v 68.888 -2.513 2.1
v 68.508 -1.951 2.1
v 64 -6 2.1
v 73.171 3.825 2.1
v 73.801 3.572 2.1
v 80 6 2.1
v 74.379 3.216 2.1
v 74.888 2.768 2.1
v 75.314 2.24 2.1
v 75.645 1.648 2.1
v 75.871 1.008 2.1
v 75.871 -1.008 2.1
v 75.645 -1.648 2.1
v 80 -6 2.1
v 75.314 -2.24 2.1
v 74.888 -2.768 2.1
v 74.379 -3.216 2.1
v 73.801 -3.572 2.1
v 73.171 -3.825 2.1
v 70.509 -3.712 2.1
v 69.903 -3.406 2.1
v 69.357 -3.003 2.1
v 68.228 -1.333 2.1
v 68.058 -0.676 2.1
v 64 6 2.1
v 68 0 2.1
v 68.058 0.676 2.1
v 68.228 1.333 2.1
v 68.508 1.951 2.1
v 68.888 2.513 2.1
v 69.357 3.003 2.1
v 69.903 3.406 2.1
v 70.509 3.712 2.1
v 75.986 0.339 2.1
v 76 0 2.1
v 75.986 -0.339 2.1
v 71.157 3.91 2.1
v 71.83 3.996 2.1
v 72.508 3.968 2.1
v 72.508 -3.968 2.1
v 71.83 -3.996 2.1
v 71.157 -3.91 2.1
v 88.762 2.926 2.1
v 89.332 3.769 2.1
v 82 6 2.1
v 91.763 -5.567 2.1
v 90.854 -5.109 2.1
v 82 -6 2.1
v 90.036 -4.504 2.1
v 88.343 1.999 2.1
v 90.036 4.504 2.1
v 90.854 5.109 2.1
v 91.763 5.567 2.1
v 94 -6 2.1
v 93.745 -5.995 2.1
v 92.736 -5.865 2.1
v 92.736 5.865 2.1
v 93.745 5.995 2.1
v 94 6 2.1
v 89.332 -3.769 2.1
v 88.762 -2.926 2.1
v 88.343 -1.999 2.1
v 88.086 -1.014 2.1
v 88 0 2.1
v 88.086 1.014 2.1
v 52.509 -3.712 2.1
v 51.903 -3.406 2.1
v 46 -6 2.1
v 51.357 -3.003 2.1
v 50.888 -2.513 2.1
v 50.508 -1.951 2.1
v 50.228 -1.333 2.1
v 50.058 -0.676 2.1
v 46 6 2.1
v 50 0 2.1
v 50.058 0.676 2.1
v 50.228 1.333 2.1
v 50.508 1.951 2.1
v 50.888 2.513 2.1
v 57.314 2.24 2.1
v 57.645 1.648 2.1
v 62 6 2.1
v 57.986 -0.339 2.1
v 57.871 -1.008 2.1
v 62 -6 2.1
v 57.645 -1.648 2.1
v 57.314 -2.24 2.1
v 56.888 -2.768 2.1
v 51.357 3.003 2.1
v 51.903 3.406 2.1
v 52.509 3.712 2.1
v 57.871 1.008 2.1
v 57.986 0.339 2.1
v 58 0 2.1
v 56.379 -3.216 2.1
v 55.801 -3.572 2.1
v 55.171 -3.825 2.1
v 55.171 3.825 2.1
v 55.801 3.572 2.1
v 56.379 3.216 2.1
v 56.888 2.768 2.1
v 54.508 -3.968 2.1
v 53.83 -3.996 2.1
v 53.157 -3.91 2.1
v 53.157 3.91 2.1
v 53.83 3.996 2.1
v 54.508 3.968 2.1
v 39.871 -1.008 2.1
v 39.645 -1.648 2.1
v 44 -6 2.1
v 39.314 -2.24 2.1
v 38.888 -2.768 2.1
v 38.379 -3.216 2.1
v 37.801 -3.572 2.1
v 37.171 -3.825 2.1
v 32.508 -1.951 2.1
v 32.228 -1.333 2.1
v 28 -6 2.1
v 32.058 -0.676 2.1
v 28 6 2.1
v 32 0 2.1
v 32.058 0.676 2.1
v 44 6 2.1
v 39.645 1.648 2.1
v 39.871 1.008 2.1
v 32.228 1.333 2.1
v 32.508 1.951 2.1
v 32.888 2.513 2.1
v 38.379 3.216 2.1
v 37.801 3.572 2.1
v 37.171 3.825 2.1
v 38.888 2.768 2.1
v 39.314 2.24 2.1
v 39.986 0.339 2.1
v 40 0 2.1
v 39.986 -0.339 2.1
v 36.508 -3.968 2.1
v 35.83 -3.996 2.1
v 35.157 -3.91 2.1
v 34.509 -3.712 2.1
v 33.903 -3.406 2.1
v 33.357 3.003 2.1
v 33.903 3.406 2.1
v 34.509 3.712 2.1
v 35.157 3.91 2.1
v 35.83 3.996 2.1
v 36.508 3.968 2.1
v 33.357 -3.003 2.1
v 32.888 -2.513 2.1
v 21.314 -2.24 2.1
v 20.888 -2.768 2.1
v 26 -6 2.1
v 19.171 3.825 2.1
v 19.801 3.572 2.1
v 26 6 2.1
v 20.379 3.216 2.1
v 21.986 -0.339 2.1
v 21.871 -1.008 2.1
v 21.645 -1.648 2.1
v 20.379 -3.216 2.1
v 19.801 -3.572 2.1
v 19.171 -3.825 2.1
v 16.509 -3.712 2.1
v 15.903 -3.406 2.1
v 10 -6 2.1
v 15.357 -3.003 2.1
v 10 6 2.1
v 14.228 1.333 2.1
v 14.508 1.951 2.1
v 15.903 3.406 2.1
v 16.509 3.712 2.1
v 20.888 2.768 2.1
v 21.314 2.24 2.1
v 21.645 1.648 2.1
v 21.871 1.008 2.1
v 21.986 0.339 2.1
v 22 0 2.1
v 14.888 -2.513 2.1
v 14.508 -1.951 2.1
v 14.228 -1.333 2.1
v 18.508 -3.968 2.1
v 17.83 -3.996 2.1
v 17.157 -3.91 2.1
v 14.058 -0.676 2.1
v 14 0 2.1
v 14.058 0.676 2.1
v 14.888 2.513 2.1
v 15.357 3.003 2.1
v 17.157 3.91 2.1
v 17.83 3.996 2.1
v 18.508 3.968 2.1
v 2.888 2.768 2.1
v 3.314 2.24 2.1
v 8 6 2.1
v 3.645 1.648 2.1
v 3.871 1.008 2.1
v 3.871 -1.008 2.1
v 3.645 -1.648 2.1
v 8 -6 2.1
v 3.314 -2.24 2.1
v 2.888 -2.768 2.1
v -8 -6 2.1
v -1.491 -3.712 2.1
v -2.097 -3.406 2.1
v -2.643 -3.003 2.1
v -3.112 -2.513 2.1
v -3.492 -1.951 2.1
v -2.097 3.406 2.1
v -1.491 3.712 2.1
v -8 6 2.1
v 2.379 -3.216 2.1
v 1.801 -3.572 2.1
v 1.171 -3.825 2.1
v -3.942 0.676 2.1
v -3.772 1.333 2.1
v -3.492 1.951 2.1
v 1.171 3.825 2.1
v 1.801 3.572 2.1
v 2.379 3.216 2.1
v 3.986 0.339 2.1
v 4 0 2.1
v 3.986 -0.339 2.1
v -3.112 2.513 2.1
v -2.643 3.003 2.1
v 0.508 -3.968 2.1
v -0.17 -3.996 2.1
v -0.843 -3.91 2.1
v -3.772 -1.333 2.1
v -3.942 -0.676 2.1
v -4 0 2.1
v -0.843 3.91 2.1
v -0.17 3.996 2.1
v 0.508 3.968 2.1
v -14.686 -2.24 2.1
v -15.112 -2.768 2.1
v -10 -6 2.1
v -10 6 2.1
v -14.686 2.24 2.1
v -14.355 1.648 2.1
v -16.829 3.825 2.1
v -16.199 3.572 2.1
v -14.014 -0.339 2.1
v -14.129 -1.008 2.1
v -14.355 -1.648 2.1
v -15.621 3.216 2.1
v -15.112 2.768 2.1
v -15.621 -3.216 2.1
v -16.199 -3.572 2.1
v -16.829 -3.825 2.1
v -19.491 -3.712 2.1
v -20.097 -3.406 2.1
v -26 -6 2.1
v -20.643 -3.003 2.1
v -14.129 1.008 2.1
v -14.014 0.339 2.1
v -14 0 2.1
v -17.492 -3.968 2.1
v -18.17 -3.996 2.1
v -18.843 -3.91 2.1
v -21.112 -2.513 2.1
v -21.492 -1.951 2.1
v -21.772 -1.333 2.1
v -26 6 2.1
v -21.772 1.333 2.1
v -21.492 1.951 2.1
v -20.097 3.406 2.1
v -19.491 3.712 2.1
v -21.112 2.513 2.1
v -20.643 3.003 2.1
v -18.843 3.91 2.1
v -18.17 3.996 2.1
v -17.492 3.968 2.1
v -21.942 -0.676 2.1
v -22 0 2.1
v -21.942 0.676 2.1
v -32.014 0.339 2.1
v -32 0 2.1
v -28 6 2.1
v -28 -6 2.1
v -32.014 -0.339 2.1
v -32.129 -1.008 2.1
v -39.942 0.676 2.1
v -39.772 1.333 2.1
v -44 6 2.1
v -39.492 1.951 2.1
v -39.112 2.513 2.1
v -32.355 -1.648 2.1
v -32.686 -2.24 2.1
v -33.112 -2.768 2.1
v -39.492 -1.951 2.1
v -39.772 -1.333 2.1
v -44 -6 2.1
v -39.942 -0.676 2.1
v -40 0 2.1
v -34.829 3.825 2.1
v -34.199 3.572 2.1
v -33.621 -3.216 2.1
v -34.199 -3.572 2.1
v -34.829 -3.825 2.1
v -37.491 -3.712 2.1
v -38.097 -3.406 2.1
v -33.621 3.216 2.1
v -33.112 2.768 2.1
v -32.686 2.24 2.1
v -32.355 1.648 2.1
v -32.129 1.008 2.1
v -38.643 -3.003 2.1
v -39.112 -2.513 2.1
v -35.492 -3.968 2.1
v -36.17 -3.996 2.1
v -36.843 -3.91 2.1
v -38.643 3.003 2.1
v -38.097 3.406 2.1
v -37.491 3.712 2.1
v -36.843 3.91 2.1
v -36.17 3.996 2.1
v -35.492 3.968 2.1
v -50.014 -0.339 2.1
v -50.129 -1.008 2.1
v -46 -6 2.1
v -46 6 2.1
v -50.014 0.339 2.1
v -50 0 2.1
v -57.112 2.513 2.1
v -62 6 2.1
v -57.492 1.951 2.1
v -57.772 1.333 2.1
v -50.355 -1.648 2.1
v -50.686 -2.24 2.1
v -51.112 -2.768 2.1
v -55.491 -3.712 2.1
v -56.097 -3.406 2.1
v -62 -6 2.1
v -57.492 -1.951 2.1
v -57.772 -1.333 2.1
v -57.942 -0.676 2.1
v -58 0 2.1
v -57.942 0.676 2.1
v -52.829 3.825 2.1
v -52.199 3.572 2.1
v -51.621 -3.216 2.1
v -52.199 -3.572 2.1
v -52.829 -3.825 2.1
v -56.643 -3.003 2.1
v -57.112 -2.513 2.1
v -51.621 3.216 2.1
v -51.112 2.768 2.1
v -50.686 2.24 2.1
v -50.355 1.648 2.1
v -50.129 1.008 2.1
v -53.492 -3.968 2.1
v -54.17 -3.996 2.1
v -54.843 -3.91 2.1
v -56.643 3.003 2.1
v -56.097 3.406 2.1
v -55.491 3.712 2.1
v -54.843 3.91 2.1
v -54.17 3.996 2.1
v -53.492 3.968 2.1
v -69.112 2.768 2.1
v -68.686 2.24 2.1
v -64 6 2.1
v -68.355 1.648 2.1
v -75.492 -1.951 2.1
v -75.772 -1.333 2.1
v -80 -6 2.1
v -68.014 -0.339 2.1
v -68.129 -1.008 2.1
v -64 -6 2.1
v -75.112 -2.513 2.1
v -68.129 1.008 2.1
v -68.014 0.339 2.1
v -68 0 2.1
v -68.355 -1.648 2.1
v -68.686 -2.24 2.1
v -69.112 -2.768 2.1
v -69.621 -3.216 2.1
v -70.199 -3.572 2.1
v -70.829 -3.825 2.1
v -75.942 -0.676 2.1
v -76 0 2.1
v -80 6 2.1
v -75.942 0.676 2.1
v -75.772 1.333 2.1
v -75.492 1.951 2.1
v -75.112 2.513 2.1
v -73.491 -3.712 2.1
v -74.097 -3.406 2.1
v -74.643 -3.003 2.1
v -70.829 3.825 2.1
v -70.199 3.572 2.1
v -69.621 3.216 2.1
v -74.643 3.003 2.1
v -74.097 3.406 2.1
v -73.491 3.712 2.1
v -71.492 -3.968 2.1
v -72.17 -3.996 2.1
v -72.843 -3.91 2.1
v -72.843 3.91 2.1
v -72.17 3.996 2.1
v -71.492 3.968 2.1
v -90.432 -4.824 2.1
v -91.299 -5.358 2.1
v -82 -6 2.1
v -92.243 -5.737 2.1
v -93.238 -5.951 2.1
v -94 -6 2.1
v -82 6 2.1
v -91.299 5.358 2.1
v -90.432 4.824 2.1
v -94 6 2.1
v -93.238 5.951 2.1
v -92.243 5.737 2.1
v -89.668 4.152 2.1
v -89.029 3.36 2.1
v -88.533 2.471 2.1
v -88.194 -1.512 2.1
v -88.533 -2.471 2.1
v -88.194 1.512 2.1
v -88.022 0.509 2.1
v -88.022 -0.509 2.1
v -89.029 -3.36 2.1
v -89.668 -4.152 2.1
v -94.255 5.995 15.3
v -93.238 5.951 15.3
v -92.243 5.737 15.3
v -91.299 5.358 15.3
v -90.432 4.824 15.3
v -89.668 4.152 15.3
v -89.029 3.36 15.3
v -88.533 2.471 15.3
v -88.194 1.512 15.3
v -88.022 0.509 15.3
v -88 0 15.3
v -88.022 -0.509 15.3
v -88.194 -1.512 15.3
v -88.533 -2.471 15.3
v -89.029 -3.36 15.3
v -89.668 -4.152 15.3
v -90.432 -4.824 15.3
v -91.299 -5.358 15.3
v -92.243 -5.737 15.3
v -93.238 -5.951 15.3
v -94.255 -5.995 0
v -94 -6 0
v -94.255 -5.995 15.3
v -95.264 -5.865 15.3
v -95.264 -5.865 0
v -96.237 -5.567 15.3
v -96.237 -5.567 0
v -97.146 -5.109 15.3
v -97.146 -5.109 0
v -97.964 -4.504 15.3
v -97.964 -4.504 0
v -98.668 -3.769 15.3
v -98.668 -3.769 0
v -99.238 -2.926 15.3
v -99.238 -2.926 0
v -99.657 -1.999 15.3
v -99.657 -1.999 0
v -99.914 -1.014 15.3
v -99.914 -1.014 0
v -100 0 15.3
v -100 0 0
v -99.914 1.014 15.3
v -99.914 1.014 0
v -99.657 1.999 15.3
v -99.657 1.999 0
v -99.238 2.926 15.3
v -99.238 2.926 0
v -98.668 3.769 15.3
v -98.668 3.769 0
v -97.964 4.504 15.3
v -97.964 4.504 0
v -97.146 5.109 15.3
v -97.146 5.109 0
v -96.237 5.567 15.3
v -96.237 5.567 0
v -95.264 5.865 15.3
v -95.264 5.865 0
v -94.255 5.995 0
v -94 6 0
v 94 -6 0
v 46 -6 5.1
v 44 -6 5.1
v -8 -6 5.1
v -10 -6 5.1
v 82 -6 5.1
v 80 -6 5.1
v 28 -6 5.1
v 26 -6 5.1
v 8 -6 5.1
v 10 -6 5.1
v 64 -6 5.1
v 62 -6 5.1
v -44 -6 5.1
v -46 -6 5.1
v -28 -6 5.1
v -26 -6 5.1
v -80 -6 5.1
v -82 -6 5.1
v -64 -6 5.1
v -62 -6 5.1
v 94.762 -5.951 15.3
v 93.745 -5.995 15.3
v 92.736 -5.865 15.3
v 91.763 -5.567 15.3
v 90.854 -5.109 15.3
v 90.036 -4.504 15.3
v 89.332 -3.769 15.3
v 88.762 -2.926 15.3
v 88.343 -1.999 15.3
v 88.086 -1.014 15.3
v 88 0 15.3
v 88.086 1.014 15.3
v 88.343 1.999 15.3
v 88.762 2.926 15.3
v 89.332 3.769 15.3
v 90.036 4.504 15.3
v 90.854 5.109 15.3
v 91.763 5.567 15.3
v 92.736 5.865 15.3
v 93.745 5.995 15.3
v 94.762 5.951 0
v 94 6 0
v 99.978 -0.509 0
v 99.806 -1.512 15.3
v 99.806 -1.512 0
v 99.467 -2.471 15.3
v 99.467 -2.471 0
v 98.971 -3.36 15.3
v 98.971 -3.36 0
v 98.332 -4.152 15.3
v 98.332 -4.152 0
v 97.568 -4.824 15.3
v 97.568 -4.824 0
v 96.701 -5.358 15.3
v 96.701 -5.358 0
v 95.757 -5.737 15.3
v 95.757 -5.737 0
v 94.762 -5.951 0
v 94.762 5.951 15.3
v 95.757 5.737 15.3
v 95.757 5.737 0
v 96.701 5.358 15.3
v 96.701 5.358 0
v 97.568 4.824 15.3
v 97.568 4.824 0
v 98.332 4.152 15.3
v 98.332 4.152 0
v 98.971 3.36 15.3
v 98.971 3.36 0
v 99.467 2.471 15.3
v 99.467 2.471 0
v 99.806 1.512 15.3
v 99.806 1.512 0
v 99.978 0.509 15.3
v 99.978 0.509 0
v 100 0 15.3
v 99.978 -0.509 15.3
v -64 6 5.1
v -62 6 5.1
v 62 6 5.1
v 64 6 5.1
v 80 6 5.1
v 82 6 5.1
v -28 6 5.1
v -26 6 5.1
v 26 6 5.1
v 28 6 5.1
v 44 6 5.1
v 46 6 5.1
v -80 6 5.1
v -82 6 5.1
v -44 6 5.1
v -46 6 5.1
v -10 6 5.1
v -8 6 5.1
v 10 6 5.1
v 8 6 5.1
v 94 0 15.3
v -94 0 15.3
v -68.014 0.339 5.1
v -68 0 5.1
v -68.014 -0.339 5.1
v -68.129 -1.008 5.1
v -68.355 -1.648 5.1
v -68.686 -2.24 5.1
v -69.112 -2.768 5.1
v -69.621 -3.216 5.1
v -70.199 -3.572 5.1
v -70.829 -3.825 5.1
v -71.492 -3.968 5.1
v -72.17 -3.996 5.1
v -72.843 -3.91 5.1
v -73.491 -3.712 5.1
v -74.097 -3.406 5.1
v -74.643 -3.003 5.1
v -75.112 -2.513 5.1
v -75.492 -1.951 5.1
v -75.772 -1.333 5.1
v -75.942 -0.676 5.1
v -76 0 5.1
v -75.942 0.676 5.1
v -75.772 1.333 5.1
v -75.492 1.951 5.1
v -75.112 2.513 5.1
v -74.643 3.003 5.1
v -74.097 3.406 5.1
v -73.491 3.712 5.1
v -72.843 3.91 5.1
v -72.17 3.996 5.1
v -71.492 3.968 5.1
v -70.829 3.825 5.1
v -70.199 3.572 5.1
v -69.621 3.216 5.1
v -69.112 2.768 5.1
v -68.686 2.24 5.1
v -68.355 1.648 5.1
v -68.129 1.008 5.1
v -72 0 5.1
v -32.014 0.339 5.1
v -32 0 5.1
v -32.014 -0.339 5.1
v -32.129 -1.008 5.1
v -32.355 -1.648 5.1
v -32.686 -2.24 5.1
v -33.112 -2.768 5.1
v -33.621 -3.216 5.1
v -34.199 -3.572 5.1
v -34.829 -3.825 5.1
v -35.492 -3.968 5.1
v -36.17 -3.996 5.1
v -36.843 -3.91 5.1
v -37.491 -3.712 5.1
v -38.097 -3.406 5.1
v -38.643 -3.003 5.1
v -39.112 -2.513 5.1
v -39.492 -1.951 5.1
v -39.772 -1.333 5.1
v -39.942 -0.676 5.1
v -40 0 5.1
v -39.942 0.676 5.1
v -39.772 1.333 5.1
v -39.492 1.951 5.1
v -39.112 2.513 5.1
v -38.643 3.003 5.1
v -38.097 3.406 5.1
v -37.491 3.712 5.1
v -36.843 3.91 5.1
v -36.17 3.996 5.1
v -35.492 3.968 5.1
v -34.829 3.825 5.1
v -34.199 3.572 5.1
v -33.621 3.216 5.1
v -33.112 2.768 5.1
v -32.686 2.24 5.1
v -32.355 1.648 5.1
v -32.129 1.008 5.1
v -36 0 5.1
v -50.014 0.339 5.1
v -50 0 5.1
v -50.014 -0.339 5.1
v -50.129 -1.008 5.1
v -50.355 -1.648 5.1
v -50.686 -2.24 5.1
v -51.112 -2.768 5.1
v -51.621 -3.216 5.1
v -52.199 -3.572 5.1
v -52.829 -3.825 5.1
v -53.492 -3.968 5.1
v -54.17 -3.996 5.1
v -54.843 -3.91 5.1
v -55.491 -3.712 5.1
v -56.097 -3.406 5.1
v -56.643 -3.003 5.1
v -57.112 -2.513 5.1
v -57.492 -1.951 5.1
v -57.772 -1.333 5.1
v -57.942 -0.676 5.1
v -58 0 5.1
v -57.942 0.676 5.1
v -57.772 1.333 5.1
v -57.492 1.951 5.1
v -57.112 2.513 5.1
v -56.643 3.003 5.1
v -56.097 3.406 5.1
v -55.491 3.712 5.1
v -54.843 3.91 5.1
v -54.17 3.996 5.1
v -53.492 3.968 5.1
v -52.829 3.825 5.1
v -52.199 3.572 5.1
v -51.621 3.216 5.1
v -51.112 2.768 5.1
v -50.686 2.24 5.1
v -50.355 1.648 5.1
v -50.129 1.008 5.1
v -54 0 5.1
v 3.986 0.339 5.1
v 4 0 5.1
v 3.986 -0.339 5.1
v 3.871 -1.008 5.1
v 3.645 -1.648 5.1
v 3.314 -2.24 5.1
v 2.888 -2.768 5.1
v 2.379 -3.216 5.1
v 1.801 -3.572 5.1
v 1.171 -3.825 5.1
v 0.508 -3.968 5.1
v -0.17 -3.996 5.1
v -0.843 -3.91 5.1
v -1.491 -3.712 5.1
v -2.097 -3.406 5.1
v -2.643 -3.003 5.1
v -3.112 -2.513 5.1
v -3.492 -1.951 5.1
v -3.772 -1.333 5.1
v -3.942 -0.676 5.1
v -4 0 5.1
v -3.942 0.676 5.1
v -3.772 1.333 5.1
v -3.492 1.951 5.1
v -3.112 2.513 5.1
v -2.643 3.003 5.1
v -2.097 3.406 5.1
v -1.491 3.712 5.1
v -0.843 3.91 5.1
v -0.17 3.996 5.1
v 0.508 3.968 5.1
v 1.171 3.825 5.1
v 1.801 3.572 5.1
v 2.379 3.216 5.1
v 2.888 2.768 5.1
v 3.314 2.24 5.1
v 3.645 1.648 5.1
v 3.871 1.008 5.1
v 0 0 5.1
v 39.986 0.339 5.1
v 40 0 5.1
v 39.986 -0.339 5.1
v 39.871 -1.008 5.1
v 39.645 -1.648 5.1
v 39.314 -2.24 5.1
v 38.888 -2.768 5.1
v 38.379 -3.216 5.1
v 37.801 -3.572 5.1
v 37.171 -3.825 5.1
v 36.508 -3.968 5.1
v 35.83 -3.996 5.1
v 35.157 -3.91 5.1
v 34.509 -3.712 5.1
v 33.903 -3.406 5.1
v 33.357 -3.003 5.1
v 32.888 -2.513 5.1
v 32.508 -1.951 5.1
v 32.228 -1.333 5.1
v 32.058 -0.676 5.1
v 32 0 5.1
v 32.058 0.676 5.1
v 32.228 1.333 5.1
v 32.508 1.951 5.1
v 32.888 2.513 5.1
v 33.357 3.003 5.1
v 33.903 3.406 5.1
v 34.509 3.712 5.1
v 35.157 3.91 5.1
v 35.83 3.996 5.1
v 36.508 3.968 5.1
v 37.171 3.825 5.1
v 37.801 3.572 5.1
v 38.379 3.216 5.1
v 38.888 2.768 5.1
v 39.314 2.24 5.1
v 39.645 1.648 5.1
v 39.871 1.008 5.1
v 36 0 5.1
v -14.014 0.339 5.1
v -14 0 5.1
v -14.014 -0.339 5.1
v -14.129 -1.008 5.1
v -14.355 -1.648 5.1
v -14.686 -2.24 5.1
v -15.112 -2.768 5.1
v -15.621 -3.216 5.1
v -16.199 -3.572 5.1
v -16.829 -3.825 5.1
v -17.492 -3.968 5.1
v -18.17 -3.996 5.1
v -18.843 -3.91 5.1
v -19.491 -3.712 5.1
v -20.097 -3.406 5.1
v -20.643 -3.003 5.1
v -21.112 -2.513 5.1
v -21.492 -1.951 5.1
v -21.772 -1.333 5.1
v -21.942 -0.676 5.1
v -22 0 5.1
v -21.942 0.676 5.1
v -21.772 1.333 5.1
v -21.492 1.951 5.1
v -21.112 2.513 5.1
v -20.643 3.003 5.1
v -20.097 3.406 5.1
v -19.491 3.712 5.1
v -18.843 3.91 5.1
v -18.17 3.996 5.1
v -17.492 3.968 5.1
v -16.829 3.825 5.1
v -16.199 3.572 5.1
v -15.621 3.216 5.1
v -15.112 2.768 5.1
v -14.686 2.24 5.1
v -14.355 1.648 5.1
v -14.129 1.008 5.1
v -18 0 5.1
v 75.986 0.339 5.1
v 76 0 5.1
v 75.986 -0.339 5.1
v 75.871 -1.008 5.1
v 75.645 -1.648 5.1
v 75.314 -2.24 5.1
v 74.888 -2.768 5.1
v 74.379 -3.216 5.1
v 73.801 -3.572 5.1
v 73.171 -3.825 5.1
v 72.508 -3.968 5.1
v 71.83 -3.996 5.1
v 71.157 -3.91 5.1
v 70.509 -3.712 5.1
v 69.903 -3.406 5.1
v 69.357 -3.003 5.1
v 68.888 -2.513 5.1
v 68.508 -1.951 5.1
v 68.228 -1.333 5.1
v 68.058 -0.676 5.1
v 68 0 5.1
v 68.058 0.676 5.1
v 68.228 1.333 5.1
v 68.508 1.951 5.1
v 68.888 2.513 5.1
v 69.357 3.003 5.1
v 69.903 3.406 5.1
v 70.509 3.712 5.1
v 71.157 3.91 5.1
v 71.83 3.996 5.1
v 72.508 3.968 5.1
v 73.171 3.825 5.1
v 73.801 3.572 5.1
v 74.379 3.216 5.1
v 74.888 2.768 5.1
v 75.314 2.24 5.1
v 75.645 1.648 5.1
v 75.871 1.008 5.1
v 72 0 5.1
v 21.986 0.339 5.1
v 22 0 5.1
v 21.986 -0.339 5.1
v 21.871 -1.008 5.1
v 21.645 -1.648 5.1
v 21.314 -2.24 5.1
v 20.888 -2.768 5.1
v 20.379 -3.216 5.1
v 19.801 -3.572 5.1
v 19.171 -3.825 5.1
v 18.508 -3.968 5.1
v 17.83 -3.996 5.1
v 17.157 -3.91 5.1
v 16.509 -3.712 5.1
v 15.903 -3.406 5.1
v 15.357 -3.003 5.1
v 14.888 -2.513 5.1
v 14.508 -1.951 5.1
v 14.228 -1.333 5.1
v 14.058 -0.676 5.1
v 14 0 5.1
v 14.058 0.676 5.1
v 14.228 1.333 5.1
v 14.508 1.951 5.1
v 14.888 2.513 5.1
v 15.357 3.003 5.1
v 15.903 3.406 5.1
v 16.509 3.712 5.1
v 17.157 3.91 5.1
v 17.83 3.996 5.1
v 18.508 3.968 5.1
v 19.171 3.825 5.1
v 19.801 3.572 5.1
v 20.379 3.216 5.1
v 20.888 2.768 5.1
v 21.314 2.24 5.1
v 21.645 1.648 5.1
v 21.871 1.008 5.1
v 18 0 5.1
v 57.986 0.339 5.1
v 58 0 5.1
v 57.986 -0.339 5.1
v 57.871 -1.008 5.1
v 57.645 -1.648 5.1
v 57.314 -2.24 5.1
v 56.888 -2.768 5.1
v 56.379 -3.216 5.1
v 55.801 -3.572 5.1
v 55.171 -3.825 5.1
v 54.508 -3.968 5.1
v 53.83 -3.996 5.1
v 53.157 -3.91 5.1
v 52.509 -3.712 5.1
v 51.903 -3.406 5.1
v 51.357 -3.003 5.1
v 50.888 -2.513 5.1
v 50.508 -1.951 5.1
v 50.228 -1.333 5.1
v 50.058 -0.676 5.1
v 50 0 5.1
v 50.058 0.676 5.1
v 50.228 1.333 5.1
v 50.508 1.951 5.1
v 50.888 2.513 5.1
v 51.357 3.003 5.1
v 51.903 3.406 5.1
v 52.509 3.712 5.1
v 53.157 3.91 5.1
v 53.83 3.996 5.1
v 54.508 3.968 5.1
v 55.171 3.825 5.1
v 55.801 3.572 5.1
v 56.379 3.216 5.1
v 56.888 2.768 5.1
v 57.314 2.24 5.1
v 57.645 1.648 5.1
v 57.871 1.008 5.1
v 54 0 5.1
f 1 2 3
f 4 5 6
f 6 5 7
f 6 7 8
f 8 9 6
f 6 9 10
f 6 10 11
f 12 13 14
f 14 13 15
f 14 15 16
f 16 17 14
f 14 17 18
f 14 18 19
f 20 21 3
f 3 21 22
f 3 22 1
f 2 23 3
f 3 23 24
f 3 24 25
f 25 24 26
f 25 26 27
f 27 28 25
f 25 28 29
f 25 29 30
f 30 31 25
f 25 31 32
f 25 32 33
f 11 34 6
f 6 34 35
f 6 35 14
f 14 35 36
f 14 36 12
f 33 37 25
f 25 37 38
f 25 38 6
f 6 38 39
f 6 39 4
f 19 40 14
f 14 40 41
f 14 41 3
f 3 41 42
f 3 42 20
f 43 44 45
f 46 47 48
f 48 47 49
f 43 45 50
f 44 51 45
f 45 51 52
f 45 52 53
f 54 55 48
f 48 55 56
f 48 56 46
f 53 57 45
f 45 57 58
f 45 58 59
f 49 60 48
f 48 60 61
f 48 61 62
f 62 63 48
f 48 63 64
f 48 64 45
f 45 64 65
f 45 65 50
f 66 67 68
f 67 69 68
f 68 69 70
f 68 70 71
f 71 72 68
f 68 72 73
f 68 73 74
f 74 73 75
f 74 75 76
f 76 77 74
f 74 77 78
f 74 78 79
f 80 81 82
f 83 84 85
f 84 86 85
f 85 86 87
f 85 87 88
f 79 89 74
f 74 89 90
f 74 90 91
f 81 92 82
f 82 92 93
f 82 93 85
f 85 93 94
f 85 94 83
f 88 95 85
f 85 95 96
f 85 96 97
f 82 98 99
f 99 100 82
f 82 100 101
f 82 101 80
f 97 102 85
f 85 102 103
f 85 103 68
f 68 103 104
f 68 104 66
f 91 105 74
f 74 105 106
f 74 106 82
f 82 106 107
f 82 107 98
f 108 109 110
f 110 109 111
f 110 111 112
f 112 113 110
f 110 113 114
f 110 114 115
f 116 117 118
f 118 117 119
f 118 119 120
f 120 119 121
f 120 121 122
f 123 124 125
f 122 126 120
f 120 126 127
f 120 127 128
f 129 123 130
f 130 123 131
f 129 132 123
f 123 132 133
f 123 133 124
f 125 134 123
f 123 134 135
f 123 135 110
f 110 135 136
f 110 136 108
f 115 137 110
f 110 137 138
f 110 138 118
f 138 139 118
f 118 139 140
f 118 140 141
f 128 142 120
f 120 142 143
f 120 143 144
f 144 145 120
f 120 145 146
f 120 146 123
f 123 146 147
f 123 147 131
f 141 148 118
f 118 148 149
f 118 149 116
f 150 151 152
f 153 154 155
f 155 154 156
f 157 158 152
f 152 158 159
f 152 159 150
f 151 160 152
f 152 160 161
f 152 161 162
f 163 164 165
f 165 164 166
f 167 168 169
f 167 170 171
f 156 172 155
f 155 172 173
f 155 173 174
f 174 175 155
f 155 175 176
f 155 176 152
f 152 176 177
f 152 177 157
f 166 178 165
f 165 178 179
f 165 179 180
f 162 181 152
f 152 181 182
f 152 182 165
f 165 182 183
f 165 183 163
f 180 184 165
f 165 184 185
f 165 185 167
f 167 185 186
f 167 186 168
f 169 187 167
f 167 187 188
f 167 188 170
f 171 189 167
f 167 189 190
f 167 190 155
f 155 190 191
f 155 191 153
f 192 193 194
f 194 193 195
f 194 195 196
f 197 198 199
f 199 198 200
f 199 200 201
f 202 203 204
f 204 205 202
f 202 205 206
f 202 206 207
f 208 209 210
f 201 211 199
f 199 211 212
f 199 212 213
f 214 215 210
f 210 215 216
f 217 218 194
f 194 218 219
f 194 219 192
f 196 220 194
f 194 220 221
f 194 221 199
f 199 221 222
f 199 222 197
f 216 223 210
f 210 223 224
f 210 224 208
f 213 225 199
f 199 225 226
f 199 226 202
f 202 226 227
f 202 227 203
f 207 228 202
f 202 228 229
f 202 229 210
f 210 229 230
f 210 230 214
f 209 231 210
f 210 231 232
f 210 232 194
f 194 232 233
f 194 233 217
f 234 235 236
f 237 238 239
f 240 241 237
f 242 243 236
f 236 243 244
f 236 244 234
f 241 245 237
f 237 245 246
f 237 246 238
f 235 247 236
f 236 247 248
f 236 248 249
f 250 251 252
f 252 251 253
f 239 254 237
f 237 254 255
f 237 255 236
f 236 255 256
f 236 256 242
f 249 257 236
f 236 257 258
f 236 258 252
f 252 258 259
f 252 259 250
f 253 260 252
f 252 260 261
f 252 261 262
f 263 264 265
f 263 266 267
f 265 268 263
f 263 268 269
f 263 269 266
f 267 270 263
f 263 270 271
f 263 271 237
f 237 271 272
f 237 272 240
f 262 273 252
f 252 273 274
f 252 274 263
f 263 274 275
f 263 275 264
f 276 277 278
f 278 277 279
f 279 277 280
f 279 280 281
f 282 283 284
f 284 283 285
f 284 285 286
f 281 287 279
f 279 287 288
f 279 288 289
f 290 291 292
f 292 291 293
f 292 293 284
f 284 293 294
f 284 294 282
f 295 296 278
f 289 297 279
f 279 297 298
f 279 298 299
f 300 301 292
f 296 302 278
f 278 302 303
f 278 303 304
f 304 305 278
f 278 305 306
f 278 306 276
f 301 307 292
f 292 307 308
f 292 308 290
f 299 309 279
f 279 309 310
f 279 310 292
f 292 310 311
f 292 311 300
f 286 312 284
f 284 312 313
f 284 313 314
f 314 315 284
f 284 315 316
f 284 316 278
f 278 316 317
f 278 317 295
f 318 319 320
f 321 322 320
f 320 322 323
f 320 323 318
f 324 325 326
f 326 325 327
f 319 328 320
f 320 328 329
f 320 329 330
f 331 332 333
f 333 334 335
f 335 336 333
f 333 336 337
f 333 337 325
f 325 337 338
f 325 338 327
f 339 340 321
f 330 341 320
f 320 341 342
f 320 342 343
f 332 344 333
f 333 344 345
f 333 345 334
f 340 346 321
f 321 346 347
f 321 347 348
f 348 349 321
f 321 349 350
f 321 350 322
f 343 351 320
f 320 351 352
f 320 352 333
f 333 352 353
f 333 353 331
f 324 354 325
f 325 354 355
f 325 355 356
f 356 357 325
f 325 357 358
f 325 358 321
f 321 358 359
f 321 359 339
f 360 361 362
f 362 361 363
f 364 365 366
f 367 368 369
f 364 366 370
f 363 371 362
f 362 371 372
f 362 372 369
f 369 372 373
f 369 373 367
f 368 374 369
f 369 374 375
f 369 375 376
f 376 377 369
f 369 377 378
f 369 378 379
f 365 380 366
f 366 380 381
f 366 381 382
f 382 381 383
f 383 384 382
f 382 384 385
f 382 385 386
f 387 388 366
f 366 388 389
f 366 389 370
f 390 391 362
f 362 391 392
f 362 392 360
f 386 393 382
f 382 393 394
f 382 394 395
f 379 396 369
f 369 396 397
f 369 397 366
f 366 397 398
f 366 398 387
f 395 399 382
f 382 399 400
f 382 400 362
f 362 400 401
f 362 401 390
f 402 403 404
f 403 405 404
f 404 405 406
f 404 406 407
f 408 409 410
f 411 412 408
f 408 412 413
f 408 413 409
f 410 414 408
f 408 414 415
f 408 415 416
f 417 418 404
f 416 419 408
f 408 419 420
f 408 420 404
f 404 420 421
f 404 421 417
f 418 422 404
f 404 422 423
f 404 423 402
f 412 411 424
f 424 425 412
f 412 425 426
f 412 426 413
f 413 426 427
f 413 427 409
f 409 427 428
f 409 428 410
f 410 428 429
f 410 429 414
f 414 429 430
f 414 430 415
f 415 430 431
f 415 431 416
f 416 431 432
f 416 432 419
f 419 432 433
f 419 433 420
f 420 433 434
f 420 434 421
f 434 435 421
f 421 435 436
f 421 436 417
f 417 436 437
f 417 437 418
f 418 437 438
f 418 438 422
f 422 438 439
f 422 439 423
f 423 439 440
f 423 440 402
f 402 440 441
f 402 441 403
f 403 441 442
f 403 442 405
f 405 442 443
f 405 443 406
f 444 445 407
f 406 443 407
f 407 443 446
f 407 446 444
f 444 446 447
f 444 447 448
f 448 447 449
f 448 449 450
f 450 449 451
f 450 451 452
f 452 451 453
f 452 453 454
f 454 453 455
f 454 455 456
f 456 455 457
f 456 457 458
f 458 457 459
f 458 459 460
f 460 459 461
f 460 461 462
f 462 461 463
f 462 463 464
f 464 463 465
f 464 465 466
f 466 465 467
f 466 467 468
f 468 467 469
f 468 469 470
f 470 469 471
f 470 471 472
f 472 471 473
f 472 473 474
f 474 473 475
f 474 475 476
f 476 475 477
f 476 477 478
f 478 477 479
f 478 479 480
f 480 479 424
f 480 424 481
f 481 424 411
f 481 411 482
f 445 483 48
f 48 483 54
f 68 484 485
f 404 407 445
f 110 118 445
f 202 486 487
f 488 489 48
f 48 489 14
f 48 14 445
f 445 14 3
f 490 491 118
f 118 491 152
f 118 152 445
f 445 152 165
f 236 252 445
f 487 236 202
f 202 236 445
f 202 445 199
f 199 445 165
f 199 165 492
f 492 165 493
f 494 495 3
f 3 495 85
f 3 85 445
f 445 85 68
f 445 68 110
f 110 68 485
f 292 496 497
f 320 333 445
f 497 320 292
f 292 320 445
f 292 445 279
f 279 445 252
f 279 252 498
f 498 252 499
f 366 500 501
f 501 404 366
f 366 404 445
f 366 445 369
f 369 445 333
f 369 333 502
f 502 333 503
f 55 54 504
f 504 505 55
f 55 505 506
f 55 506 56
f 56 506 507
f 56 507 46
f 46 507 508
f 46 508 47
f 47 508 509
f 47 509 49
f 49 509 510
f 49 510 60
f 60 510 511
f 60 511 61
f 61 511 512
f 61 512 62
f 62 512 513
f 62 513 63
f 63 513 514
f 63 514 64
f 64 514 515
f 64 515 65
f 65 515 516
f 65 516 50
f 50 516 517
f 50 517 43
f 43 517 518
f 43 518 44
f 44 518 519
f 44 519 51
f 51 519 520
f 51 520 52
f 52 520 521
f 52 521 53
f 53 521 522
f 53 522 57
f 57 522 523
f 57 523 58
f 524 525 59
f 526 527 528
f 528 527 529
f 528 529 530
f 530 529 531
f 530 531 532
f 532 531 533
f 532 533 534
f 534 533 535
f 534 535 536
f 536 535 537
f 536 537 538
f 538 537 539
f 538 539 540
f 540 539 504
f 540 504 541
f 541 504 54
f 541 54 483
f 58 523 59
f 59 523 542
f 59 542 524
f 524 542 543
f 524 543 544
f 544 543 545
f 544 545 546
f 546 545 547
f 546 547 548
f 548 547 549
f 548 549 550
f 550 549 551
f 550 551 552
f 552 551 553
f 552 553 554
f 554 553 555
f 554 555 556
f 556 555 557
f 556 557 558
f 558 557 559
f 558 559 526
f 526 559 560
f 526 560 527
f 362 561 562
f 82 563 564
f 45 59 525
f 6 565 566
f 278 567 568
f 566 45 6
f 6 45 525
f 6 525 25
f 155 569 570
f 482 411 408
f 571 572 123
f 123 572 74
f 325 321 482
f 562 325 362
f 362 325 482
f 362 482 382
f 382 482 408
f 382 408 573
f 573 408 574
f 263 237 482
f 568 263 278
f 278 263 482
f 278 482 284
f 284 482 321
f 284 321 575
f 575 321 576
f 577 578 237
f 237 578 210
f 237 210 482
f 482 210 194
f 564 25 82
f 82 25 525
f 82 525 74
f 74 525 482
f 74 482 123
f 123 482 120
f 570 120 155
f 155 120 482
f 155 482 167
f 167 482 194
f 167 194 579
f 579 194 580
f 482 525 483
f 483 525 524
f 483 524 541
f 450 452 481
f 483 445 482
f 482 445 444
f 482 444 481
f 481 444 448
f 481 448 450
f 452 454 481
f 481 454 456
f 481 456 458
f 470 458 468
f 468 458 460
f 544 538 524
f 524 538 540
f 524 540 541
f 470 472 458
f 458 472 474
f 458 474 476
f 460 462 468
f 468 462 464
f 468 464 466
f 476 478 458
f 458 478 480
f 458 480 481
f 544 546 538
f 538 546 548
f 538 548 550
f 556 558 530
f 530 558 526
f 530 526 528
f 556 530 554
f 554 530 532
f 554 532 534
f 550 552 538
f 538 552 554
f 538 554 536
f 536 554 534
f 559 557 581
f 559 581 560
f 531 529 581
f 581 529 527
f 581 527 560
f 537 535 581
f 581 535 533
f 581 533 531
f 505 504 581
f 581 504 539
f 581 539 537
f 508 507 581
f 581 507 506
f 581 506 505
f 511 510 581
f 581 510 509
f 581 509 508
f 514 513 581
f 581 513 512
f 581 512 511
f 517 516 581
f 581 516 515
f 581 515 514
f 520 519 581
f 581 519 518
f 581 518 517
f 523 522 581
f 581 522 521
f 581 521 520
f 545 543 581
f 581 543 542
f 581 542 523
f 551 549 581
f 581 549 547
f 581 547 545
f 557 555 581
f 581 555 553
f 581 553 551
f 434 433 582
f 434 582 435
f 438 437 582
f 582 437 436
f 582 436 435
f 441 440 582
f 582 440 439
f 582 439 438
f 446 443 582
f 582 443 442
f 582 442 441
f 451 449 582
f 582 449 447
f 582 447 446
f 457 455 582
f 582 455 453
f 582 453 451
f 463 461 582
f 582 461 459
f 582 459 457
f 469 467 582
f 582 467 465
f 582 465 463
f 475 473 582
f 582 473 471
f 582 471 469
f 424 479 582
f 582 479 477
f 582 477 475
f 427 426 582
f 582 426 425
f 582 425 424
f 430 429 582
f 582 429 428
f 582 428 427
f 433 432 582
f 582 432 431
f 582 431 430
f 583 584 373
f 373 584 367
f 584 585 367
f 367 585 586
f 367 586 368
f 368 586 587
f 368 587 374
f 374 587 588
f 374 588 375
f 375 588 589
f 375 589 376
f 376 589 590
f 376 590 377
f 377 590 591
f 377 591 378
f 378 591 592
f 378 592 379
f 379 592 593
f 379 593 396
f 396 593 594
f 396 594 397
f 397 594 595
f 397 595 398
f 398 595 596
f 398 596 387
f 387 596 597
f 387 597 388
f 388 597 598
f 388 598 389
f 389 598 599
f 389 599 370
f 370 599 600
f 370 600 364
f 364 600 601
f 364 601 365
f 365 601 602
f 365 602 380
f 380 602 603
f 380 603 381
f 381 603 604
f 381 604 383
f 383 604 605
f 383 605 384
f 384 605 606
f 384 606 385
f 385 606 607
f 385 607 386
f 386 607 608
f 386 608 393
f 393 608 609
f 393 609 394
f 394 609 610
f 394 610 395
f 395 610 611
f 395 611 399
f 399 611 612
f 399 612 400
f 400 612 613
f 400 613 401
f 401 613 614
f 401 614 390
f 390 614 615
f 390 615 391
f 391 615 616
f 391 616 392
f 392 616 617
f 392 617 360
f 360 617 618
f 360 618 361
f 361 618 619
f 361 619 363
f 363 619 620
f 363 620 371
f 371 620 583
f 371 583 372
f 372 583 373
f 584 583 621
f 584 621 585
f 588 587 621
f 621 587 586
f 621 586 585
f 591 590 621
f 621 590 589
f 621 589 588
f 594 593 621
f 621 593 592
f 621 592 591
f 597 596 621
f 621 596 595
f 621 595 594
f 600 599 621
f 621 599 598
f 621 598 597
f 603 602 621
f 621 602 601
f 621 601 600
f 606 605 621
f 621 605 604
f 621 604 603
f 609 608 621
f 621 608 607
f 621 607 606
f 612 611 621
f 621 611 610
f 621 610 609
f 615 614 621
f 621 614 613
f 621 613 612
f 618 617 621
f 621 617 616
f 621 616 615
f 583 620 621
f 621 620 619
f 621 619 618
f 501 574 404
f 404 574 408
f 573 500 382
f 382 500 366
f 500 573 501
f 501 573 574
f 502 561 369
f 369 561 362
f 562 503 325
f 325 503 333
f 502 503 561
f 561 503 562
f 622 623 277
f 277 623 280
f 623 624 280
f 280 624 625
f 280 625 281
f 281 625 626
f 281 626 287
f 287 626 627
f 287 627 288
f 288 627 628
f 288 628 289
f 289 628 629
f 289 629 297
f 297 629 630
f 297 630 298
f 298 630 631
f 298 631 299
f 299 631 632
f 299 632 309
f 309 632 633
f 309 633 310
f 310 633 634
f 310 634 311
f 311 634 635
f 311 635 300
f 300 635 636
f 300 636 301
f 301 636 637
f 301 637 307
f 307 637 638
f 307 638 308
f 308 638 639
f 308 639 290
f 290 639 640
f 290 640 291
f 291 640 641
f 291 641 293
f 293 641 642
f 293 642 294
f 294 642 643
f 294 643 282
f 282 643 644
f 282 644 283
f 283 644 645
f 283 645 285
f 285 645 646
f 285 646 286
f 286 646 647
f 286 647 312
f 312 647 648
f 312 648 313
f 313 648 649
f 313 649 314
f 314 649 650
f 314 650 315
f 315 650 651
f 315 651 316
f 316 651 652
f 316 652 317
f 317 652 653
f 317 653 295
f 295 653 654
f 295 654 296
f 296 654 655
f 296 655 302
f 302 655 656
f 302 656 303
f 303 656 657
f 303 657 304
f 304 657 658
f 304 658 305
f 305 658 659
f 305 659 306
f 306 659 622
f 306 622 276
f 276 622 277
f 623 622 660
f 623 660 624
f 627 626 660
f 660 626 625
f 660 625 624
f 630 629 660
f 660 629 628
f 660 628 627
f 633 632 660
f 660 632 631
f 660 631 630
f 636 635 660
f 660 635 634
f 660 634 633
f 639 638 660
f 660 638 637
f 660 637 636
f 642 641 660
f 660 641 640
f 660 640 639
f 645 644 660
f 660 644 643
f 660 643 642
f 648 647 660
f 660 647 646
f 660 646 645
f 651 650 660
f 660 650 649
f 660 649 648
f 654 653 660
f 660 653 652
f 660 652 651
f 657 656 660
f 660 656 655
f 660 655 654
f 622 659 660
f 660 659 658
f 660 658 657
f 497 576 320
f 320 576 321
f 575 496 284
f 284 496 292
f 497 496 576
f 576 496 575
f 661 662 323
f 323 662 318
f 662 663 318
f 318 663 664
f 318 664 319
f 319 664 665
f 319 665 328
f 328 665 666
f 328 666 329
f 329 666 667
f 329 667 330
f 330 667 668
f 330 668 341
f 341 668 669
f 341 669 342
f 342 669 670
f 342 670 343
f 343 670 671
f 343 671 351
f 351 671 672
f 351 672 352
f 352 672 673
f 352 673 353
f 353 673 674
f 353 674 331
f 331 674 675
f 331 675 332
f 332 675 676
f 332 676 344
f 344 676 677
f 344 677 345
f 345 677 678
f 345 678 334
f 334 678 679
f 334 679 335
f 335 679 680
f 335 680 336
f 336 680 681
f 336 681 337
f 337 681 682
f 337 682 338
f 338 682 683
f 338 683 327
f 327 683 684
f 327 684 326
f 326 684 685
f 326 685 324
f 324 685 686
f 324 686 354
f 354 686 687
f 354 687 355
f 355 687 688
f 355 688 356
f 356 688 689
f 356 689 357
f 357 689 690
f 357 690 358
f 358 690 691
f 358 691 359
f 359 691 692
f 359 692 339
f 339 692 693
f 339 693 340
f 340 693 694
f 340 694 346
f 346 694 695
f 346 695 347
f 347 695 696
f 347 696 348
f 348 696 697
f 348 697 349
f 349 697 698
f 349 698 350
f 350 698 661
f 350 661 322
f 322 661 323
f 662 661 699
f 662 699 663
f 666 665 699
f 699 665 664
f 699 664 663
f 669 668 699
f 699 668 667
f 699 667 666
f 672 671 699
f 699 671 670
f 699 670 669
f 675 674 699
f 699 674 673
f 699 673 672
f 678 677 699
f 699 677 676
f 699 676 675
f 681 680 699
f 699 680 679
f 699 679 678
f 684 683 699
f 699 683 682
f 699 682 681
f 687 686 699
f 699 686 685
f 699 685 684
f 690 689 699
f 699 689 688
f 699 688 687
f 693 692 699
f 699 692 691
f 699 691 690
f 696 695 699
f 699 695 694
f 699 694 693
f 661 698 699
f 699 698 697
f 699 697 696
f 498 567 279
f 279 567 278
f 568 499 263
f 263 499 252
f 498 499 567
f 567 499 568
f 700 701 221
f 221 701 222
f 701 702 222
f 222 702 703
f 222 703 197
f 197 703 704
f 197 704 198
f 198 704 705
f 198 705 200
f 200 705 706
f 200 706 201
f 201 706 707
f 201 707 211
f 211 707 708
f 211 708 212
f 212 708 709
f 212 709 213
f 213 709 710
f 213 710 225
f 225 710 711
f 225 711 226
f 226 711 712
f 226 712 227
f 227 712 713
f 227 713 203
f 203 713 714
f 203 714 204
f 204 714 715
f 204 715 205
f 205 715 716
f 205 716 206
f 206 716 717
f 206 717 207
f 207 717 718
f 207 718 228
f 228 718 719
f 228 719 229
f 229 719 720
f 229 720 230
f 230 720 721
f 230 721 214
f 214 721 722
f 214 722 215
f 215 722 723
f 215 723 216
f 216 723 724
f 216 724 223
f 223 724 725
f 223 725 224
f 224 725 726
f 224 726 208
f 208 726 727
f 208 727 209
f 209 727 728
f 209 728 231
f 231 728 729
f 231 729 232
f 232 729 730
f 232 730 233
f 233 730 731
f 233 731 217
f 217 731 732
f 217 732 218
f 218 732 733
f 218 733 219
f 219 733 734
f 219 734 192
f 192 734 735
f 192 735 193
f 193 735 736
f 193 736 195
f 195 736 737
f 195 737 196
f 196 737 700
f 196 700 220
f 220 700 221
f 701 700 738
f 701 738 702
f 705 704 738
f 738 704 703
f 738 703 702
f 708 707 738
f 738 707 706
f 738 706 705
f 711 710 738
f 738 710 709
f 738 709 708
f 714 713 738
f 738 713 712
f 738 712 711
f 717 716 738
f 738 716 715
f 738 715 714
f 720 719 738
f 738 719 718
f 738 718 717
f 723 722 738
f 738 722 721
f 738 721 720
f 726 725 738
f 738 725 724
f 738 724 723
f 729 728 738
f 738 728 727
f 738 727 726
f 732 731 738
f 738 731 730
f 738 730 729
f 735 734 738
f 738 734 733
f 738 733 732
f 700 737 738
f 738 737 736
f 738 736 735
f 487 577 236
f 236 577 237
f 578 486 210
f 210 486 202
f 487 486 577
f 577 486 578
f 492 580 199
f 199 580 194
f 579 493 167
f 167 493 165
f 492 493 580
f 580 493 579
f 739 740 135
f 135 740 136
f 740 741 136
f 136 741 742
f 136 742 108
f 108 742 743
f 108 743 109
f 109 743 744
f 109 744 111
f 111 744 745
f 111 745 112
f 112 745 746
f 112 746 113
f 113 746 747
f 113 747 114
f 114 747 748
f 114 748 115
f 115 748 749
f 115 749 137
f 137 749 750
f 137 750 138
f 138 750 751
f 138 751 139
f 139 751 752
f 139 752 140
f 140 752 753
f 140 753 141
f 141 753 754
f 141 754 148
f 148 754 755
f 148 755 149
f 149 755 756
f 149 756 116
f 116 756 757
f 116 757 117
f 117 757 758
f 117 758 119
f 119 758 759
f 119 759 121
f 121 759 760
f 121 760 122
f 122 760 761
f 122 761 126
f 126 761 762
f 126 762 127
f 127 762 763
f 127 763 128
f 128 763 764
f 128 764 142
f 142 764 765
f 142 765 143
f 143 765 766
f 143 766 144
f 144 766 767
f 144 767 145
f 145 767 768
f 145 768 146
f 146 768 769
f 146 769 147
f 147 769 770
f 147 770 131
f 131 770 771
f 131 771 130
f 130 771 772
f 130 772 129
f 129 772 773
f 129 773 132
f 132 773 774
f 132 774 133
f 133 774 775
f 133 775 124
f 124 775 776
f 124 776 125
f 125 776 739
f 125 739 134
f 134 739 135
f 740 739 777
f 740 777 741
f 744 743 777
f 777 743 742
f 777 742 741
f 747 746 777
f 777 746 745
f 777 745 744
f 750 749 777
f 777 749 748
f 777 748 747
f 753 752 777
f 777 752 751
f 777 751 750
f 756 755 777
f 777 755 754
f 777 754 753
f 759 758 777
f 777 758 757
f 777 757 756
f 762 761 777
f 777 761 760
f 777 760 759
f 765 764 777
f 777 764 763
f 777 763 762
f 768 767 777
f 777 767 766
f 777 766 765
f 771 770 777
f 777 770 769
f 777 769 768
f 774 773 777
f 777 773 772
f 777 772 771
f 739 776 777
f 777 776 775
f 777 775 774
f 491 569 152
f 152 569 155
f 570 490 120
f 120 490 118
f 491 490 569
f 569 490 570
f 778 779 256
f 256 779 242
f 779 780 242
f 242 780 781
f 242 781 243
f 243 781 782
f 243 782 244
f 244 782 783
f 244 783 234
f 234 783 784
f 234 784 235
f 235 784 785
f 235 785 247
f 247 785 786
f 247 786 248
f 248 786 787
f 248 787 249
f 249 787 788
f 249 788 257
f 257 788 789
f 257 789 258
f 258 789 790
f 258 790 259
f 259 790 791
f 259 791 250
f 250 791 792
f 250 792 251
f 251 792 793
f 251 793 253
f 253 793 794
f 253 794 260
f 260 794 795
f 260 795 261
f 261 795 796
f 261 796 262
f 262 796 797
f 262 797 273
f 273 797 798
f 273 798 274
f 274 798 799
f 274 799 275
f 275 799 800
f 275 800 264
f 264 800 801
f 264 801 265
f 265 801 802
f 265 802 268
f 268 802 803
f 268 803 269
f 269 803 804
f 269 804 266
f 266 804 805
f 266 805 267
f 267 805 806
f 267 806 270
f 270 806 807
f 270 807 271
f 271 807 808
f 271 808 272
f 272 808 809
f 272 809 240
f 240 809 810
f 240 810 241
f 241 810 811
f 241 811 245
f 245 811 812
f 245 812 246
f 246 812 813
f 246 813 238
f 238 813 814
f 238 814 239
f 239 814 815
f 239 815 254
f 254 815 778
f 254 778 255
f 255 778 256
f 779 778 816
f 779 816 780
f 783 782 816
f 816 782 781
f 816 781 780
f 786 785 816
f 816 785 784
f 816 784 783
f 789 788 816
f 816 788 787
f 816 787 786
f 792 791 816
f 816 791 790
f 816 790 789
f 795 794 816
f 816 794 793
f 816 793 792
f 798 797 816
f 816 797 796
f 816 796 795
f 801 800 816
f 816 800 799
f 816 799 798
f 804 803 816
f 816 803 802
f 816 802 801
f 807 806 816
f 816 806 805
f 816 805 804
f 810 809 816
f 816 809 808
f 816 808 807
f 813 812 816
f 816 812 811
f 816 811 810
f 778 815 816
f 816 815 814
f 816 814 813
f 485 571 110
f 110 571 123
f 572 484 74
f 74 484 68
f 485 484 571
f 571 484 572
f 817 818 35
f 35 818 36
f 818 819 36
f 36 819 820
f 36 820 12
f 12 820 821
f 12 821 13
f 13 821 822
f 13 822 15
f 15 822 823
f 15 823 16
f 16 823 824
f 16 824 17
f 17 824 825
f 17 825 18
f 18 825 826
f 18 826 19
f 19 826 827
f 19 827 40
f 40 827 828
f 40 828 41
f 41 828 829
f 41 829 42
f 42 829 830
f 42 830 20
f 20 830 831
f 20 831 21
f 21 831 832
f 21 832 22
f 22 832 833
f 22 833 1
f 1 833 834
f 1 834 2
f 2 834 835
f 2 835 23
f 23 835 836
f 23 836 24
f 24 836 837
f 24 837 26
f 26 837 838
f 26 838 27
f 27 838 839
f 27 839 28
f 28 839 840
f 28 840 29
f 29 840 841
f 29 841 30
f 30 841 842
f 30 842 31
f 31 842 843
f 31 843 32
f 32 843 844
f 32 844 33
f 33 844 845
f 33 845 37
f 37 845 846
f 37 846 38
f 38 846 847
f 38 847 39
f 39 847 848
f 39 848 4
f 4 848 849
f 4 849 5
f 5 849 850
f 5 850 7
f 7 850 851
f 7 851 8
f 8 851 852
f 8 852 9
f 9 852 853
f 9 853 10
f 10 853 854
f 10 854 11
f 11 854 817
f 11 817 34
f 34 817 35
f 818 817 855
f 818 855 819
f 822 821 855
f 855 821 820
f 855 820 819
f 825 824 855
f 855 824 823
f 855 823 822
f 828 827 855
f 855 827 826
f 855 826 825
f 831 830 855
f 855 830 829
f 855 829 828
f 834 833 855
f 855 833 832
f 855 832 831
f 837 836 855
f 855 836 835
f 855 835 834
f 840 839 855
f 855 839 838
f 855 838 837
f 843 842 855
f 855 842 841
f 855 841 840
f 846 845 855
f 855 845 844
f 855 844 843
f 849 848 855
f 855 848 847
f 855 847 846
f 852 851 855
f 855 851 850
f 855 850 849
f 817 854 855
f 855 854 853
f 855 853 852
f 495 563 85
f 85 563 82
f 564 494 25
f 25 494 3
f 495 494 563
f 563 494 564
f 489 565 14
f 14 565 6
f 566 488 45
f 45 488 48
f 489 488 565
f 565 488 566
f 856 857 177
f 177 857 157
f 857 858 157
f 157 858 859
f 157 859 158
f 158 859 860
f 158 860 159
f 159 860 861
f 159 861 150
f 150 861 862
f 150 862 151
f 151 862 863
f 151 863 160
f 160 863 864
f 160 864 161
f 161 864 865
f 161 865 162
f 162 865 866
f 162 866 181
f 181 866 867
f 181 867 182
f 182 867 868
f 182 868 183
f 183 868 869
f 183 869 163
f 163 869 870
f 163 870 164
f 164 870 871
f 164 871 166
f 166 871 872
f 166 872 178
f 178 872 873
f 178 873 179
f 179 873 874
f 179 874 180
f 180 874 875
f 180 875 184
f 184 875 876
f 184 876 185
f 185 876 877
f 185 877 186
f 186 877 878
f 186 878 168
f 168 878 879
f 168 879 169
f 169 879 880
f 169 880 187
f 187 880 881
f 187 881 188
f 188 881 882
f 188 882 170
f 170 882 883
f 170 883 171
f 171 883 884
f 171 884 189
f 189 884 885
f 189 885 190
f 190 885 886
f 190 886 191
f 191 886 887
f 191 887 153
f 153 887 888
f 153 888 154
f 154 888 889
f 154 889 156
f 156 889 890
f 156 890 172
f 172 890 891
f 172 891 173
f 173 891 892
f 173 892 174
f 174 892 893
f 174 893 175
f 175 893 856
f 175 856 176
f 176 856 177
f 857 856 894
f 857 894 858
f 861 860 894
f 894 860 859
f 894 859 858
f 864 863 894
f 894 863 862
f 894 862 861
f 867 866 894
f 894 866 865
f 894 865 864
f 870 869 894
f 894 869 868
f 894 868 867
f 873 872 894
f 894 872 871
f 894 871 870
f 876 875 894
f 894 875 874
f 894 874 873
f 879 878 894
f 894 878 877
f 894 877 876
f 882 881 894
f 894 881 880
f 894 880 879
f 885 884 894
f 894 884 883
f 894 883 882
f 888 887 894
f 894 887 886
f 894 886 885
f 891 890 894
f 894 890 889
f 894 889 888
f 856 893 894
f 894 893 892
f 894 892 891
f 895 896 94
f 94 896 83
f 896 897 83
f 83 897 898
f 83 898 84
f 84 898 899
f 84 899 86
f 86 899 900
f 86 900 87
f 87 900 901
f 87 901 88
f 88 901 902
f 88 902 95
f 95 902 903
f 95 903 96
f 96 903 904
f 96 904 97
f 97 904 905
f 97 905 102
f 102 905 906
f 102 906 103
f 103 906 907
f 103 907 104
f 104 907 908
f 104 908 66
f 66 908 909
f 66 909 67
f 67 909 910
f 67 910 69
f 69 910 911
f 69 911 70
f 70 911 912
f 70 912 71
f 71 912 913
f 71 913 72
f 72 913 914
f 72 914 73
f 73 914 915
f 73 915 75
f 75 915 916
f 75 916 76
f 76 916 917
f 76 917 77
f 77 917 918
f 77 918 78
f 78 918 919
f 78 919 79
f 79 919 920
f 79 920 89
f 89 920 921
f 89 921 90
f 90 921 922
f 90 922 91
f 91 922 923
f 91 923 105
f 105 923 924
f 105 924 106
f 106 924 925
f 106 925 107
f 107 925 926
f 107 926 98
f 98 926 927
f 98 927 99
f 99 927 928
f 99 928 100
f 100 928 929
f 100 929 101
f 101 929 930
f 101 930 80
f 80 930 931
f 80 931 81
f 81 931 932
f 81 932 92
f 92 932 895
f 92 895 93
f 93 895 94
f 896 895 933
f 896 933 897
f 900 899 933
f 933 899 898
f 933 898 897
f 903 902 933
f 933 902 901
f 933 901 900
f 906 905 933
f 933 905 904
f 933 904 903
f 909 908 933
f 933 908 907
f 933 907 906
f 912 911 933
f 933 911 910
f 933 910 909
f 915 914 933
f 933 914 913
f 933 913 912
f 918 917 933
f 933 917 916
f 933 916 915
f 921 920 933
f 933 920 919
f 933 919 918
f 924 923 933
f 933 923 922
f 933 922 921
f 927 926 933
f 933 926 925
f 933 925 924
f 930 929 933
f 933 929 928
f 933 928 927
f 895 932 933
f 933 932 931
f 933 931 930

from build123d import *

# Parameters (mm, degrees)
EXTRUDE_1_DEPTH = 2.1
SKETCH_2_R      = 6
EXTRUDE_2_DEPTH = 13.2
SKETCH_3_R      = 4
SKETCH_3_W      = 2
SKETCH_3_H      = 12
EXTRUDE_3_DEPTH = 3


with BuildPart() as part:
    # Эскиз1 → Бобышка-Вытянуть1 (new body)
    with BuildSketch(Plane.XY):
        with BuildLine():
            Line((-94, 6), (94, 6))
            ThreePointArc((94, 6), (100, 0), (94, -6))
            Line((94, -6), (-94, -6))
            ThreePointArc((-94, -6), (-100, 0), (-94, 6))
        make_face()
    extrude(amount=EXTRUDE_1_DEPTH)

    # Эскиз2 → Бобышка-Вытянуть2 (add)
    with BuildSketch(Plane.XY.offset(2.1)):
        with Locations(Location((-94, 0, 0), (0, 0, 270))):
            Circle(SKETCH_2_R)
        with Locations(Location((94, 0, 0), (0, 0, 90))):
            Circle(SKETCH_2_R)
    extrude(amount=EXTRUDE_2_DEPTH)

    # Эскиз3 → Бобышка-Вытянуть3 (add)
    with BuildSketch(Plane.XY.offset(2.1)):
        with Locations((-72, 0)):
            Circle(SKETCH_3_R)
        with Locations((-36, 0)):
            Circle(SKETCH_3_R)
        Circle(SKETCH_3_R)
        with Locations((36, 0)):
            Circle(SKETCH_3_R)
        with Locations((72, 0)):
            Circle(SKETCH_3_R)
        with Locations((-54, 0)):
            Circle(SKETCH_3_R)
        with Locations((-18, 0)):
            Circle(SKETCH_3_R)
        with Locations((18, 0)):
            Circle(SKETCH_3_R)
        with Locations((54, 0)):
            Circle(SKETCH_3_R)
        with Locations((-81, 0)):
            Rectangle(SKETCH_3_W, SKETCH_3_H)
        with Locations((-63, 0)):
            Rectangle(SKETCH_3_W, SKETCH_3_H)
        with Locations((-45, 0)):
            Rectangle(SKETCH_3_W, SKETCH_3_H)
        with Locations((-27, 0)):
            Rectangle(SKETCH_3_W, SKETCH_3_H)
        with Locations((-9, 0)):
            Rectangle(SKETCH_3_W, SKETCH_3_H)
        with Locations((9, 0)):
            Rectangle(SKETCH_3_W, SKETCH_3_H)
        with Locations((27, 0)):
            Rectangle(SKETCH_3_W, SKETCH_3_H)
        with Locations((45, 0)):
            Rectangle(SKETCH_3_W, SKETCH_3_H)
        with Locations((63, 0)):
            Rectangle(SKETCH_3_W, SKETCH_3_H)
        with Locations((81, 0)):
            Rectangle(SKETCH_3_W, SKETCH_3_H)
    extrude(amount=EXTRUDE_3_DEPTH)


solid = part.part
